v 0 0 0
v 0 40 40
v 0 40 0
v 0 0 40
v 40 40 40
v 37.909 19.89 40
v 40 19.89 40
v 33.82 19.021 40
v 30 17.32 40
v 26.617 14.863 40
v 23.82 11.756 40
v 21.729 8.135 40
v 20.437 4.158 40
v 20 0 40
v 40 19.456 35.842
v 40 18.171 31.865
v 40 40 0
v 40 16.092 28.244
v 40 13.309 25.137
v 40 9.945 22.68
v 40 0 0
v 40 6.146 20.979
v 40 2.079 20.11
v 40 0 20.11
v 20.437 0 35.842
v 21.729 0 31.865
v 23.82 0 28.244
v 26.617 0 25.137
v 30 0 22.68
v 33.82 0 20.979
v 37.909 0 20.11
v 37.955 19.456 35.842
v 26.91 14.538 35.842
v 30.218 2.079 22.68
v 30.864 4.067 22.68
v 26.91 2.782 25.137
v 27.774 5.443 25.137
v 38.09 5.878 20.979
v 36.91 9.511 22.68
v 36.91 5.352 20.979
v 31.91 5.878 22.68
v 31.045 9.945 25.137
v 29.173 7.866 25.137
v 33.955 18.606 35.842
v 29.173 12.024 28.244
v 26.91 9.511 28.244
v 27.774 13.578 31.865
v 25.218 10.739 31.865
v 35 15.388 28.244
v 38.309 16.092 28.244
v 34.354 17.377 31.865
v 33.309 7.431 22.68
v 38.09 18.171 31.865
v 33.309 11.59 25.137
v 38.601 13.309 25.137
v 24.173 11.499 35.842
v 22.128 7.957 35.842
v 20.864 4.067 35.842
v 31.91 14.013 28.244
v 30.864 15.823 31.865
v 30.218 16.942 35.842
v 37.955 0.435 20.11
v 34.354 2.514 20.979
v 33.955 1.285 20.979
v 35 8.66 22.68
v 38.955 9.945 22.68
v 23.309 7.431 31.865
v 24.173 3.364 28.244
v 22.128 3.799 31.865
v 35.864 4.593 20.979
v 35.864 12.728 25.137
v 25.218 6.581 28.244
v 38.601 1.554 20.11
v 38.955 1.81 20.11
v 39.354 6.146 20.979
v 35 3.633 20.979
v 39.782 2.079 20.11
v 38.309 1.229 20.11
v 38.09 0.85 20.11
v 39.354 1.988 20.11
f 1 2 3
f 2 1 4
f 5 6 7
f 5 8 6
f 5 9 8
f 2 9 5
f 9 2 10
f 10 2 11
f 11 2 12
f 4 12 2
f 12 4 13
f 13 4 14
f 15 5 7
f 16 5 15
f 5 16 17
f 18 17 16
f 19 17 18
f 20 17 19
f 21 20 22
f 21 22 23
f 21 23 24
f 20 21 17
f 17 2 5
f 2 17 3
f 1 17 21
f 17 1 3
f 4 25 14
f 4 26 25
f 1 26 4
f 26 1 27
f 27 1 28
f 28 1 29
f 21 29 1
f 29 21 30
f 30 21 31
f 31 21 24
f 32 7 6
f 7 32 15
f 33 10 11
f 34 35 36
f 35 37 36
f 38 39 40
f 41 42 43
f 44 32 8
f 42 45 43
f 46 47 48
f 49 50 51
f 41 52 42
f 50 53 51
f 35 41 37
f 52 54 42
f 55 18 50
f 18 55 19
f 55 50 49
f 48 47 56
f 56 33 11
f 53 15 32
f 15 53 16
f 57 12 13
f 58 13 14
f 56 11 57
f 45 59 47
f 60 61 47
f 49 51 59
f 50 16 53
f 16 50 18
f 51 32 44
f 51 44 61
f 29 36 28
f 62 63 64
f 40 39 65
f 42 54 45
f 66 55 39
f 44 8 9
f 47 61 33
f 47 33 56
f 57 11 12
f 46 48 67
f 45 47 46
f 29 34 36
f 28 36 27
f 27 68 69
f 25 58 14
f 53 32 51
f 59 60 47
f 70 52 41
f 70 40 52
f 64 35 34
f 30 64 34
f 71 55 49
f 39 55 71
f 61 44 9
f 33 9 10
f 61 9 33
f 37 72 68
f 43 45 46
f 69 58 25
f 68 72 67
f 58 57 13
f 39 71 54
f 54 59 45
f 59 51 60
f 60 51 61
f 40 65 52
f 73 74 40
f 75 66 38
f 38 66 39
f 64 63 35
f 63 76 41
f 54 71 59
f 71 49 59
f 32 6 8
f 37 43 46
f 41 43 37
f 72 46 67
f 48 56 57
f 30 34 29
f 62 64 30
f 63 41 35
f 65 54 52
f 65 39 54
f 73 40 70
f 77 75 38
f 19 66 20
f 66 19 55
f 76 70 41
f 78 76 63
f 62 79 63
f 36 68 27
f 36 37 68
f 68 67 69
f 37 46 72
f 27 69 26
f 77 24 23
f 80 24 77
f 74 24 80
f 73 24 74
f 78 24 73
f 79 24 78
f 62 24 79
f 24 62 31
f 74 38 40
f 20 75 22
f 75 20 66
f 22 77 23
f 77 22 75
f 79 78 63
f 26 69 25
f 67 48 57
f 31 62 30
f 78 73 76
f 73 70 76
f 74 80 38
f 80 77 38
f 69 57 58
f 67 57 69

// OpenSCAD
difference(){
  cube([40, 40, 40], center=false);
  translate([40, 0, 40]){
    sphere(r=20);
  }
}
